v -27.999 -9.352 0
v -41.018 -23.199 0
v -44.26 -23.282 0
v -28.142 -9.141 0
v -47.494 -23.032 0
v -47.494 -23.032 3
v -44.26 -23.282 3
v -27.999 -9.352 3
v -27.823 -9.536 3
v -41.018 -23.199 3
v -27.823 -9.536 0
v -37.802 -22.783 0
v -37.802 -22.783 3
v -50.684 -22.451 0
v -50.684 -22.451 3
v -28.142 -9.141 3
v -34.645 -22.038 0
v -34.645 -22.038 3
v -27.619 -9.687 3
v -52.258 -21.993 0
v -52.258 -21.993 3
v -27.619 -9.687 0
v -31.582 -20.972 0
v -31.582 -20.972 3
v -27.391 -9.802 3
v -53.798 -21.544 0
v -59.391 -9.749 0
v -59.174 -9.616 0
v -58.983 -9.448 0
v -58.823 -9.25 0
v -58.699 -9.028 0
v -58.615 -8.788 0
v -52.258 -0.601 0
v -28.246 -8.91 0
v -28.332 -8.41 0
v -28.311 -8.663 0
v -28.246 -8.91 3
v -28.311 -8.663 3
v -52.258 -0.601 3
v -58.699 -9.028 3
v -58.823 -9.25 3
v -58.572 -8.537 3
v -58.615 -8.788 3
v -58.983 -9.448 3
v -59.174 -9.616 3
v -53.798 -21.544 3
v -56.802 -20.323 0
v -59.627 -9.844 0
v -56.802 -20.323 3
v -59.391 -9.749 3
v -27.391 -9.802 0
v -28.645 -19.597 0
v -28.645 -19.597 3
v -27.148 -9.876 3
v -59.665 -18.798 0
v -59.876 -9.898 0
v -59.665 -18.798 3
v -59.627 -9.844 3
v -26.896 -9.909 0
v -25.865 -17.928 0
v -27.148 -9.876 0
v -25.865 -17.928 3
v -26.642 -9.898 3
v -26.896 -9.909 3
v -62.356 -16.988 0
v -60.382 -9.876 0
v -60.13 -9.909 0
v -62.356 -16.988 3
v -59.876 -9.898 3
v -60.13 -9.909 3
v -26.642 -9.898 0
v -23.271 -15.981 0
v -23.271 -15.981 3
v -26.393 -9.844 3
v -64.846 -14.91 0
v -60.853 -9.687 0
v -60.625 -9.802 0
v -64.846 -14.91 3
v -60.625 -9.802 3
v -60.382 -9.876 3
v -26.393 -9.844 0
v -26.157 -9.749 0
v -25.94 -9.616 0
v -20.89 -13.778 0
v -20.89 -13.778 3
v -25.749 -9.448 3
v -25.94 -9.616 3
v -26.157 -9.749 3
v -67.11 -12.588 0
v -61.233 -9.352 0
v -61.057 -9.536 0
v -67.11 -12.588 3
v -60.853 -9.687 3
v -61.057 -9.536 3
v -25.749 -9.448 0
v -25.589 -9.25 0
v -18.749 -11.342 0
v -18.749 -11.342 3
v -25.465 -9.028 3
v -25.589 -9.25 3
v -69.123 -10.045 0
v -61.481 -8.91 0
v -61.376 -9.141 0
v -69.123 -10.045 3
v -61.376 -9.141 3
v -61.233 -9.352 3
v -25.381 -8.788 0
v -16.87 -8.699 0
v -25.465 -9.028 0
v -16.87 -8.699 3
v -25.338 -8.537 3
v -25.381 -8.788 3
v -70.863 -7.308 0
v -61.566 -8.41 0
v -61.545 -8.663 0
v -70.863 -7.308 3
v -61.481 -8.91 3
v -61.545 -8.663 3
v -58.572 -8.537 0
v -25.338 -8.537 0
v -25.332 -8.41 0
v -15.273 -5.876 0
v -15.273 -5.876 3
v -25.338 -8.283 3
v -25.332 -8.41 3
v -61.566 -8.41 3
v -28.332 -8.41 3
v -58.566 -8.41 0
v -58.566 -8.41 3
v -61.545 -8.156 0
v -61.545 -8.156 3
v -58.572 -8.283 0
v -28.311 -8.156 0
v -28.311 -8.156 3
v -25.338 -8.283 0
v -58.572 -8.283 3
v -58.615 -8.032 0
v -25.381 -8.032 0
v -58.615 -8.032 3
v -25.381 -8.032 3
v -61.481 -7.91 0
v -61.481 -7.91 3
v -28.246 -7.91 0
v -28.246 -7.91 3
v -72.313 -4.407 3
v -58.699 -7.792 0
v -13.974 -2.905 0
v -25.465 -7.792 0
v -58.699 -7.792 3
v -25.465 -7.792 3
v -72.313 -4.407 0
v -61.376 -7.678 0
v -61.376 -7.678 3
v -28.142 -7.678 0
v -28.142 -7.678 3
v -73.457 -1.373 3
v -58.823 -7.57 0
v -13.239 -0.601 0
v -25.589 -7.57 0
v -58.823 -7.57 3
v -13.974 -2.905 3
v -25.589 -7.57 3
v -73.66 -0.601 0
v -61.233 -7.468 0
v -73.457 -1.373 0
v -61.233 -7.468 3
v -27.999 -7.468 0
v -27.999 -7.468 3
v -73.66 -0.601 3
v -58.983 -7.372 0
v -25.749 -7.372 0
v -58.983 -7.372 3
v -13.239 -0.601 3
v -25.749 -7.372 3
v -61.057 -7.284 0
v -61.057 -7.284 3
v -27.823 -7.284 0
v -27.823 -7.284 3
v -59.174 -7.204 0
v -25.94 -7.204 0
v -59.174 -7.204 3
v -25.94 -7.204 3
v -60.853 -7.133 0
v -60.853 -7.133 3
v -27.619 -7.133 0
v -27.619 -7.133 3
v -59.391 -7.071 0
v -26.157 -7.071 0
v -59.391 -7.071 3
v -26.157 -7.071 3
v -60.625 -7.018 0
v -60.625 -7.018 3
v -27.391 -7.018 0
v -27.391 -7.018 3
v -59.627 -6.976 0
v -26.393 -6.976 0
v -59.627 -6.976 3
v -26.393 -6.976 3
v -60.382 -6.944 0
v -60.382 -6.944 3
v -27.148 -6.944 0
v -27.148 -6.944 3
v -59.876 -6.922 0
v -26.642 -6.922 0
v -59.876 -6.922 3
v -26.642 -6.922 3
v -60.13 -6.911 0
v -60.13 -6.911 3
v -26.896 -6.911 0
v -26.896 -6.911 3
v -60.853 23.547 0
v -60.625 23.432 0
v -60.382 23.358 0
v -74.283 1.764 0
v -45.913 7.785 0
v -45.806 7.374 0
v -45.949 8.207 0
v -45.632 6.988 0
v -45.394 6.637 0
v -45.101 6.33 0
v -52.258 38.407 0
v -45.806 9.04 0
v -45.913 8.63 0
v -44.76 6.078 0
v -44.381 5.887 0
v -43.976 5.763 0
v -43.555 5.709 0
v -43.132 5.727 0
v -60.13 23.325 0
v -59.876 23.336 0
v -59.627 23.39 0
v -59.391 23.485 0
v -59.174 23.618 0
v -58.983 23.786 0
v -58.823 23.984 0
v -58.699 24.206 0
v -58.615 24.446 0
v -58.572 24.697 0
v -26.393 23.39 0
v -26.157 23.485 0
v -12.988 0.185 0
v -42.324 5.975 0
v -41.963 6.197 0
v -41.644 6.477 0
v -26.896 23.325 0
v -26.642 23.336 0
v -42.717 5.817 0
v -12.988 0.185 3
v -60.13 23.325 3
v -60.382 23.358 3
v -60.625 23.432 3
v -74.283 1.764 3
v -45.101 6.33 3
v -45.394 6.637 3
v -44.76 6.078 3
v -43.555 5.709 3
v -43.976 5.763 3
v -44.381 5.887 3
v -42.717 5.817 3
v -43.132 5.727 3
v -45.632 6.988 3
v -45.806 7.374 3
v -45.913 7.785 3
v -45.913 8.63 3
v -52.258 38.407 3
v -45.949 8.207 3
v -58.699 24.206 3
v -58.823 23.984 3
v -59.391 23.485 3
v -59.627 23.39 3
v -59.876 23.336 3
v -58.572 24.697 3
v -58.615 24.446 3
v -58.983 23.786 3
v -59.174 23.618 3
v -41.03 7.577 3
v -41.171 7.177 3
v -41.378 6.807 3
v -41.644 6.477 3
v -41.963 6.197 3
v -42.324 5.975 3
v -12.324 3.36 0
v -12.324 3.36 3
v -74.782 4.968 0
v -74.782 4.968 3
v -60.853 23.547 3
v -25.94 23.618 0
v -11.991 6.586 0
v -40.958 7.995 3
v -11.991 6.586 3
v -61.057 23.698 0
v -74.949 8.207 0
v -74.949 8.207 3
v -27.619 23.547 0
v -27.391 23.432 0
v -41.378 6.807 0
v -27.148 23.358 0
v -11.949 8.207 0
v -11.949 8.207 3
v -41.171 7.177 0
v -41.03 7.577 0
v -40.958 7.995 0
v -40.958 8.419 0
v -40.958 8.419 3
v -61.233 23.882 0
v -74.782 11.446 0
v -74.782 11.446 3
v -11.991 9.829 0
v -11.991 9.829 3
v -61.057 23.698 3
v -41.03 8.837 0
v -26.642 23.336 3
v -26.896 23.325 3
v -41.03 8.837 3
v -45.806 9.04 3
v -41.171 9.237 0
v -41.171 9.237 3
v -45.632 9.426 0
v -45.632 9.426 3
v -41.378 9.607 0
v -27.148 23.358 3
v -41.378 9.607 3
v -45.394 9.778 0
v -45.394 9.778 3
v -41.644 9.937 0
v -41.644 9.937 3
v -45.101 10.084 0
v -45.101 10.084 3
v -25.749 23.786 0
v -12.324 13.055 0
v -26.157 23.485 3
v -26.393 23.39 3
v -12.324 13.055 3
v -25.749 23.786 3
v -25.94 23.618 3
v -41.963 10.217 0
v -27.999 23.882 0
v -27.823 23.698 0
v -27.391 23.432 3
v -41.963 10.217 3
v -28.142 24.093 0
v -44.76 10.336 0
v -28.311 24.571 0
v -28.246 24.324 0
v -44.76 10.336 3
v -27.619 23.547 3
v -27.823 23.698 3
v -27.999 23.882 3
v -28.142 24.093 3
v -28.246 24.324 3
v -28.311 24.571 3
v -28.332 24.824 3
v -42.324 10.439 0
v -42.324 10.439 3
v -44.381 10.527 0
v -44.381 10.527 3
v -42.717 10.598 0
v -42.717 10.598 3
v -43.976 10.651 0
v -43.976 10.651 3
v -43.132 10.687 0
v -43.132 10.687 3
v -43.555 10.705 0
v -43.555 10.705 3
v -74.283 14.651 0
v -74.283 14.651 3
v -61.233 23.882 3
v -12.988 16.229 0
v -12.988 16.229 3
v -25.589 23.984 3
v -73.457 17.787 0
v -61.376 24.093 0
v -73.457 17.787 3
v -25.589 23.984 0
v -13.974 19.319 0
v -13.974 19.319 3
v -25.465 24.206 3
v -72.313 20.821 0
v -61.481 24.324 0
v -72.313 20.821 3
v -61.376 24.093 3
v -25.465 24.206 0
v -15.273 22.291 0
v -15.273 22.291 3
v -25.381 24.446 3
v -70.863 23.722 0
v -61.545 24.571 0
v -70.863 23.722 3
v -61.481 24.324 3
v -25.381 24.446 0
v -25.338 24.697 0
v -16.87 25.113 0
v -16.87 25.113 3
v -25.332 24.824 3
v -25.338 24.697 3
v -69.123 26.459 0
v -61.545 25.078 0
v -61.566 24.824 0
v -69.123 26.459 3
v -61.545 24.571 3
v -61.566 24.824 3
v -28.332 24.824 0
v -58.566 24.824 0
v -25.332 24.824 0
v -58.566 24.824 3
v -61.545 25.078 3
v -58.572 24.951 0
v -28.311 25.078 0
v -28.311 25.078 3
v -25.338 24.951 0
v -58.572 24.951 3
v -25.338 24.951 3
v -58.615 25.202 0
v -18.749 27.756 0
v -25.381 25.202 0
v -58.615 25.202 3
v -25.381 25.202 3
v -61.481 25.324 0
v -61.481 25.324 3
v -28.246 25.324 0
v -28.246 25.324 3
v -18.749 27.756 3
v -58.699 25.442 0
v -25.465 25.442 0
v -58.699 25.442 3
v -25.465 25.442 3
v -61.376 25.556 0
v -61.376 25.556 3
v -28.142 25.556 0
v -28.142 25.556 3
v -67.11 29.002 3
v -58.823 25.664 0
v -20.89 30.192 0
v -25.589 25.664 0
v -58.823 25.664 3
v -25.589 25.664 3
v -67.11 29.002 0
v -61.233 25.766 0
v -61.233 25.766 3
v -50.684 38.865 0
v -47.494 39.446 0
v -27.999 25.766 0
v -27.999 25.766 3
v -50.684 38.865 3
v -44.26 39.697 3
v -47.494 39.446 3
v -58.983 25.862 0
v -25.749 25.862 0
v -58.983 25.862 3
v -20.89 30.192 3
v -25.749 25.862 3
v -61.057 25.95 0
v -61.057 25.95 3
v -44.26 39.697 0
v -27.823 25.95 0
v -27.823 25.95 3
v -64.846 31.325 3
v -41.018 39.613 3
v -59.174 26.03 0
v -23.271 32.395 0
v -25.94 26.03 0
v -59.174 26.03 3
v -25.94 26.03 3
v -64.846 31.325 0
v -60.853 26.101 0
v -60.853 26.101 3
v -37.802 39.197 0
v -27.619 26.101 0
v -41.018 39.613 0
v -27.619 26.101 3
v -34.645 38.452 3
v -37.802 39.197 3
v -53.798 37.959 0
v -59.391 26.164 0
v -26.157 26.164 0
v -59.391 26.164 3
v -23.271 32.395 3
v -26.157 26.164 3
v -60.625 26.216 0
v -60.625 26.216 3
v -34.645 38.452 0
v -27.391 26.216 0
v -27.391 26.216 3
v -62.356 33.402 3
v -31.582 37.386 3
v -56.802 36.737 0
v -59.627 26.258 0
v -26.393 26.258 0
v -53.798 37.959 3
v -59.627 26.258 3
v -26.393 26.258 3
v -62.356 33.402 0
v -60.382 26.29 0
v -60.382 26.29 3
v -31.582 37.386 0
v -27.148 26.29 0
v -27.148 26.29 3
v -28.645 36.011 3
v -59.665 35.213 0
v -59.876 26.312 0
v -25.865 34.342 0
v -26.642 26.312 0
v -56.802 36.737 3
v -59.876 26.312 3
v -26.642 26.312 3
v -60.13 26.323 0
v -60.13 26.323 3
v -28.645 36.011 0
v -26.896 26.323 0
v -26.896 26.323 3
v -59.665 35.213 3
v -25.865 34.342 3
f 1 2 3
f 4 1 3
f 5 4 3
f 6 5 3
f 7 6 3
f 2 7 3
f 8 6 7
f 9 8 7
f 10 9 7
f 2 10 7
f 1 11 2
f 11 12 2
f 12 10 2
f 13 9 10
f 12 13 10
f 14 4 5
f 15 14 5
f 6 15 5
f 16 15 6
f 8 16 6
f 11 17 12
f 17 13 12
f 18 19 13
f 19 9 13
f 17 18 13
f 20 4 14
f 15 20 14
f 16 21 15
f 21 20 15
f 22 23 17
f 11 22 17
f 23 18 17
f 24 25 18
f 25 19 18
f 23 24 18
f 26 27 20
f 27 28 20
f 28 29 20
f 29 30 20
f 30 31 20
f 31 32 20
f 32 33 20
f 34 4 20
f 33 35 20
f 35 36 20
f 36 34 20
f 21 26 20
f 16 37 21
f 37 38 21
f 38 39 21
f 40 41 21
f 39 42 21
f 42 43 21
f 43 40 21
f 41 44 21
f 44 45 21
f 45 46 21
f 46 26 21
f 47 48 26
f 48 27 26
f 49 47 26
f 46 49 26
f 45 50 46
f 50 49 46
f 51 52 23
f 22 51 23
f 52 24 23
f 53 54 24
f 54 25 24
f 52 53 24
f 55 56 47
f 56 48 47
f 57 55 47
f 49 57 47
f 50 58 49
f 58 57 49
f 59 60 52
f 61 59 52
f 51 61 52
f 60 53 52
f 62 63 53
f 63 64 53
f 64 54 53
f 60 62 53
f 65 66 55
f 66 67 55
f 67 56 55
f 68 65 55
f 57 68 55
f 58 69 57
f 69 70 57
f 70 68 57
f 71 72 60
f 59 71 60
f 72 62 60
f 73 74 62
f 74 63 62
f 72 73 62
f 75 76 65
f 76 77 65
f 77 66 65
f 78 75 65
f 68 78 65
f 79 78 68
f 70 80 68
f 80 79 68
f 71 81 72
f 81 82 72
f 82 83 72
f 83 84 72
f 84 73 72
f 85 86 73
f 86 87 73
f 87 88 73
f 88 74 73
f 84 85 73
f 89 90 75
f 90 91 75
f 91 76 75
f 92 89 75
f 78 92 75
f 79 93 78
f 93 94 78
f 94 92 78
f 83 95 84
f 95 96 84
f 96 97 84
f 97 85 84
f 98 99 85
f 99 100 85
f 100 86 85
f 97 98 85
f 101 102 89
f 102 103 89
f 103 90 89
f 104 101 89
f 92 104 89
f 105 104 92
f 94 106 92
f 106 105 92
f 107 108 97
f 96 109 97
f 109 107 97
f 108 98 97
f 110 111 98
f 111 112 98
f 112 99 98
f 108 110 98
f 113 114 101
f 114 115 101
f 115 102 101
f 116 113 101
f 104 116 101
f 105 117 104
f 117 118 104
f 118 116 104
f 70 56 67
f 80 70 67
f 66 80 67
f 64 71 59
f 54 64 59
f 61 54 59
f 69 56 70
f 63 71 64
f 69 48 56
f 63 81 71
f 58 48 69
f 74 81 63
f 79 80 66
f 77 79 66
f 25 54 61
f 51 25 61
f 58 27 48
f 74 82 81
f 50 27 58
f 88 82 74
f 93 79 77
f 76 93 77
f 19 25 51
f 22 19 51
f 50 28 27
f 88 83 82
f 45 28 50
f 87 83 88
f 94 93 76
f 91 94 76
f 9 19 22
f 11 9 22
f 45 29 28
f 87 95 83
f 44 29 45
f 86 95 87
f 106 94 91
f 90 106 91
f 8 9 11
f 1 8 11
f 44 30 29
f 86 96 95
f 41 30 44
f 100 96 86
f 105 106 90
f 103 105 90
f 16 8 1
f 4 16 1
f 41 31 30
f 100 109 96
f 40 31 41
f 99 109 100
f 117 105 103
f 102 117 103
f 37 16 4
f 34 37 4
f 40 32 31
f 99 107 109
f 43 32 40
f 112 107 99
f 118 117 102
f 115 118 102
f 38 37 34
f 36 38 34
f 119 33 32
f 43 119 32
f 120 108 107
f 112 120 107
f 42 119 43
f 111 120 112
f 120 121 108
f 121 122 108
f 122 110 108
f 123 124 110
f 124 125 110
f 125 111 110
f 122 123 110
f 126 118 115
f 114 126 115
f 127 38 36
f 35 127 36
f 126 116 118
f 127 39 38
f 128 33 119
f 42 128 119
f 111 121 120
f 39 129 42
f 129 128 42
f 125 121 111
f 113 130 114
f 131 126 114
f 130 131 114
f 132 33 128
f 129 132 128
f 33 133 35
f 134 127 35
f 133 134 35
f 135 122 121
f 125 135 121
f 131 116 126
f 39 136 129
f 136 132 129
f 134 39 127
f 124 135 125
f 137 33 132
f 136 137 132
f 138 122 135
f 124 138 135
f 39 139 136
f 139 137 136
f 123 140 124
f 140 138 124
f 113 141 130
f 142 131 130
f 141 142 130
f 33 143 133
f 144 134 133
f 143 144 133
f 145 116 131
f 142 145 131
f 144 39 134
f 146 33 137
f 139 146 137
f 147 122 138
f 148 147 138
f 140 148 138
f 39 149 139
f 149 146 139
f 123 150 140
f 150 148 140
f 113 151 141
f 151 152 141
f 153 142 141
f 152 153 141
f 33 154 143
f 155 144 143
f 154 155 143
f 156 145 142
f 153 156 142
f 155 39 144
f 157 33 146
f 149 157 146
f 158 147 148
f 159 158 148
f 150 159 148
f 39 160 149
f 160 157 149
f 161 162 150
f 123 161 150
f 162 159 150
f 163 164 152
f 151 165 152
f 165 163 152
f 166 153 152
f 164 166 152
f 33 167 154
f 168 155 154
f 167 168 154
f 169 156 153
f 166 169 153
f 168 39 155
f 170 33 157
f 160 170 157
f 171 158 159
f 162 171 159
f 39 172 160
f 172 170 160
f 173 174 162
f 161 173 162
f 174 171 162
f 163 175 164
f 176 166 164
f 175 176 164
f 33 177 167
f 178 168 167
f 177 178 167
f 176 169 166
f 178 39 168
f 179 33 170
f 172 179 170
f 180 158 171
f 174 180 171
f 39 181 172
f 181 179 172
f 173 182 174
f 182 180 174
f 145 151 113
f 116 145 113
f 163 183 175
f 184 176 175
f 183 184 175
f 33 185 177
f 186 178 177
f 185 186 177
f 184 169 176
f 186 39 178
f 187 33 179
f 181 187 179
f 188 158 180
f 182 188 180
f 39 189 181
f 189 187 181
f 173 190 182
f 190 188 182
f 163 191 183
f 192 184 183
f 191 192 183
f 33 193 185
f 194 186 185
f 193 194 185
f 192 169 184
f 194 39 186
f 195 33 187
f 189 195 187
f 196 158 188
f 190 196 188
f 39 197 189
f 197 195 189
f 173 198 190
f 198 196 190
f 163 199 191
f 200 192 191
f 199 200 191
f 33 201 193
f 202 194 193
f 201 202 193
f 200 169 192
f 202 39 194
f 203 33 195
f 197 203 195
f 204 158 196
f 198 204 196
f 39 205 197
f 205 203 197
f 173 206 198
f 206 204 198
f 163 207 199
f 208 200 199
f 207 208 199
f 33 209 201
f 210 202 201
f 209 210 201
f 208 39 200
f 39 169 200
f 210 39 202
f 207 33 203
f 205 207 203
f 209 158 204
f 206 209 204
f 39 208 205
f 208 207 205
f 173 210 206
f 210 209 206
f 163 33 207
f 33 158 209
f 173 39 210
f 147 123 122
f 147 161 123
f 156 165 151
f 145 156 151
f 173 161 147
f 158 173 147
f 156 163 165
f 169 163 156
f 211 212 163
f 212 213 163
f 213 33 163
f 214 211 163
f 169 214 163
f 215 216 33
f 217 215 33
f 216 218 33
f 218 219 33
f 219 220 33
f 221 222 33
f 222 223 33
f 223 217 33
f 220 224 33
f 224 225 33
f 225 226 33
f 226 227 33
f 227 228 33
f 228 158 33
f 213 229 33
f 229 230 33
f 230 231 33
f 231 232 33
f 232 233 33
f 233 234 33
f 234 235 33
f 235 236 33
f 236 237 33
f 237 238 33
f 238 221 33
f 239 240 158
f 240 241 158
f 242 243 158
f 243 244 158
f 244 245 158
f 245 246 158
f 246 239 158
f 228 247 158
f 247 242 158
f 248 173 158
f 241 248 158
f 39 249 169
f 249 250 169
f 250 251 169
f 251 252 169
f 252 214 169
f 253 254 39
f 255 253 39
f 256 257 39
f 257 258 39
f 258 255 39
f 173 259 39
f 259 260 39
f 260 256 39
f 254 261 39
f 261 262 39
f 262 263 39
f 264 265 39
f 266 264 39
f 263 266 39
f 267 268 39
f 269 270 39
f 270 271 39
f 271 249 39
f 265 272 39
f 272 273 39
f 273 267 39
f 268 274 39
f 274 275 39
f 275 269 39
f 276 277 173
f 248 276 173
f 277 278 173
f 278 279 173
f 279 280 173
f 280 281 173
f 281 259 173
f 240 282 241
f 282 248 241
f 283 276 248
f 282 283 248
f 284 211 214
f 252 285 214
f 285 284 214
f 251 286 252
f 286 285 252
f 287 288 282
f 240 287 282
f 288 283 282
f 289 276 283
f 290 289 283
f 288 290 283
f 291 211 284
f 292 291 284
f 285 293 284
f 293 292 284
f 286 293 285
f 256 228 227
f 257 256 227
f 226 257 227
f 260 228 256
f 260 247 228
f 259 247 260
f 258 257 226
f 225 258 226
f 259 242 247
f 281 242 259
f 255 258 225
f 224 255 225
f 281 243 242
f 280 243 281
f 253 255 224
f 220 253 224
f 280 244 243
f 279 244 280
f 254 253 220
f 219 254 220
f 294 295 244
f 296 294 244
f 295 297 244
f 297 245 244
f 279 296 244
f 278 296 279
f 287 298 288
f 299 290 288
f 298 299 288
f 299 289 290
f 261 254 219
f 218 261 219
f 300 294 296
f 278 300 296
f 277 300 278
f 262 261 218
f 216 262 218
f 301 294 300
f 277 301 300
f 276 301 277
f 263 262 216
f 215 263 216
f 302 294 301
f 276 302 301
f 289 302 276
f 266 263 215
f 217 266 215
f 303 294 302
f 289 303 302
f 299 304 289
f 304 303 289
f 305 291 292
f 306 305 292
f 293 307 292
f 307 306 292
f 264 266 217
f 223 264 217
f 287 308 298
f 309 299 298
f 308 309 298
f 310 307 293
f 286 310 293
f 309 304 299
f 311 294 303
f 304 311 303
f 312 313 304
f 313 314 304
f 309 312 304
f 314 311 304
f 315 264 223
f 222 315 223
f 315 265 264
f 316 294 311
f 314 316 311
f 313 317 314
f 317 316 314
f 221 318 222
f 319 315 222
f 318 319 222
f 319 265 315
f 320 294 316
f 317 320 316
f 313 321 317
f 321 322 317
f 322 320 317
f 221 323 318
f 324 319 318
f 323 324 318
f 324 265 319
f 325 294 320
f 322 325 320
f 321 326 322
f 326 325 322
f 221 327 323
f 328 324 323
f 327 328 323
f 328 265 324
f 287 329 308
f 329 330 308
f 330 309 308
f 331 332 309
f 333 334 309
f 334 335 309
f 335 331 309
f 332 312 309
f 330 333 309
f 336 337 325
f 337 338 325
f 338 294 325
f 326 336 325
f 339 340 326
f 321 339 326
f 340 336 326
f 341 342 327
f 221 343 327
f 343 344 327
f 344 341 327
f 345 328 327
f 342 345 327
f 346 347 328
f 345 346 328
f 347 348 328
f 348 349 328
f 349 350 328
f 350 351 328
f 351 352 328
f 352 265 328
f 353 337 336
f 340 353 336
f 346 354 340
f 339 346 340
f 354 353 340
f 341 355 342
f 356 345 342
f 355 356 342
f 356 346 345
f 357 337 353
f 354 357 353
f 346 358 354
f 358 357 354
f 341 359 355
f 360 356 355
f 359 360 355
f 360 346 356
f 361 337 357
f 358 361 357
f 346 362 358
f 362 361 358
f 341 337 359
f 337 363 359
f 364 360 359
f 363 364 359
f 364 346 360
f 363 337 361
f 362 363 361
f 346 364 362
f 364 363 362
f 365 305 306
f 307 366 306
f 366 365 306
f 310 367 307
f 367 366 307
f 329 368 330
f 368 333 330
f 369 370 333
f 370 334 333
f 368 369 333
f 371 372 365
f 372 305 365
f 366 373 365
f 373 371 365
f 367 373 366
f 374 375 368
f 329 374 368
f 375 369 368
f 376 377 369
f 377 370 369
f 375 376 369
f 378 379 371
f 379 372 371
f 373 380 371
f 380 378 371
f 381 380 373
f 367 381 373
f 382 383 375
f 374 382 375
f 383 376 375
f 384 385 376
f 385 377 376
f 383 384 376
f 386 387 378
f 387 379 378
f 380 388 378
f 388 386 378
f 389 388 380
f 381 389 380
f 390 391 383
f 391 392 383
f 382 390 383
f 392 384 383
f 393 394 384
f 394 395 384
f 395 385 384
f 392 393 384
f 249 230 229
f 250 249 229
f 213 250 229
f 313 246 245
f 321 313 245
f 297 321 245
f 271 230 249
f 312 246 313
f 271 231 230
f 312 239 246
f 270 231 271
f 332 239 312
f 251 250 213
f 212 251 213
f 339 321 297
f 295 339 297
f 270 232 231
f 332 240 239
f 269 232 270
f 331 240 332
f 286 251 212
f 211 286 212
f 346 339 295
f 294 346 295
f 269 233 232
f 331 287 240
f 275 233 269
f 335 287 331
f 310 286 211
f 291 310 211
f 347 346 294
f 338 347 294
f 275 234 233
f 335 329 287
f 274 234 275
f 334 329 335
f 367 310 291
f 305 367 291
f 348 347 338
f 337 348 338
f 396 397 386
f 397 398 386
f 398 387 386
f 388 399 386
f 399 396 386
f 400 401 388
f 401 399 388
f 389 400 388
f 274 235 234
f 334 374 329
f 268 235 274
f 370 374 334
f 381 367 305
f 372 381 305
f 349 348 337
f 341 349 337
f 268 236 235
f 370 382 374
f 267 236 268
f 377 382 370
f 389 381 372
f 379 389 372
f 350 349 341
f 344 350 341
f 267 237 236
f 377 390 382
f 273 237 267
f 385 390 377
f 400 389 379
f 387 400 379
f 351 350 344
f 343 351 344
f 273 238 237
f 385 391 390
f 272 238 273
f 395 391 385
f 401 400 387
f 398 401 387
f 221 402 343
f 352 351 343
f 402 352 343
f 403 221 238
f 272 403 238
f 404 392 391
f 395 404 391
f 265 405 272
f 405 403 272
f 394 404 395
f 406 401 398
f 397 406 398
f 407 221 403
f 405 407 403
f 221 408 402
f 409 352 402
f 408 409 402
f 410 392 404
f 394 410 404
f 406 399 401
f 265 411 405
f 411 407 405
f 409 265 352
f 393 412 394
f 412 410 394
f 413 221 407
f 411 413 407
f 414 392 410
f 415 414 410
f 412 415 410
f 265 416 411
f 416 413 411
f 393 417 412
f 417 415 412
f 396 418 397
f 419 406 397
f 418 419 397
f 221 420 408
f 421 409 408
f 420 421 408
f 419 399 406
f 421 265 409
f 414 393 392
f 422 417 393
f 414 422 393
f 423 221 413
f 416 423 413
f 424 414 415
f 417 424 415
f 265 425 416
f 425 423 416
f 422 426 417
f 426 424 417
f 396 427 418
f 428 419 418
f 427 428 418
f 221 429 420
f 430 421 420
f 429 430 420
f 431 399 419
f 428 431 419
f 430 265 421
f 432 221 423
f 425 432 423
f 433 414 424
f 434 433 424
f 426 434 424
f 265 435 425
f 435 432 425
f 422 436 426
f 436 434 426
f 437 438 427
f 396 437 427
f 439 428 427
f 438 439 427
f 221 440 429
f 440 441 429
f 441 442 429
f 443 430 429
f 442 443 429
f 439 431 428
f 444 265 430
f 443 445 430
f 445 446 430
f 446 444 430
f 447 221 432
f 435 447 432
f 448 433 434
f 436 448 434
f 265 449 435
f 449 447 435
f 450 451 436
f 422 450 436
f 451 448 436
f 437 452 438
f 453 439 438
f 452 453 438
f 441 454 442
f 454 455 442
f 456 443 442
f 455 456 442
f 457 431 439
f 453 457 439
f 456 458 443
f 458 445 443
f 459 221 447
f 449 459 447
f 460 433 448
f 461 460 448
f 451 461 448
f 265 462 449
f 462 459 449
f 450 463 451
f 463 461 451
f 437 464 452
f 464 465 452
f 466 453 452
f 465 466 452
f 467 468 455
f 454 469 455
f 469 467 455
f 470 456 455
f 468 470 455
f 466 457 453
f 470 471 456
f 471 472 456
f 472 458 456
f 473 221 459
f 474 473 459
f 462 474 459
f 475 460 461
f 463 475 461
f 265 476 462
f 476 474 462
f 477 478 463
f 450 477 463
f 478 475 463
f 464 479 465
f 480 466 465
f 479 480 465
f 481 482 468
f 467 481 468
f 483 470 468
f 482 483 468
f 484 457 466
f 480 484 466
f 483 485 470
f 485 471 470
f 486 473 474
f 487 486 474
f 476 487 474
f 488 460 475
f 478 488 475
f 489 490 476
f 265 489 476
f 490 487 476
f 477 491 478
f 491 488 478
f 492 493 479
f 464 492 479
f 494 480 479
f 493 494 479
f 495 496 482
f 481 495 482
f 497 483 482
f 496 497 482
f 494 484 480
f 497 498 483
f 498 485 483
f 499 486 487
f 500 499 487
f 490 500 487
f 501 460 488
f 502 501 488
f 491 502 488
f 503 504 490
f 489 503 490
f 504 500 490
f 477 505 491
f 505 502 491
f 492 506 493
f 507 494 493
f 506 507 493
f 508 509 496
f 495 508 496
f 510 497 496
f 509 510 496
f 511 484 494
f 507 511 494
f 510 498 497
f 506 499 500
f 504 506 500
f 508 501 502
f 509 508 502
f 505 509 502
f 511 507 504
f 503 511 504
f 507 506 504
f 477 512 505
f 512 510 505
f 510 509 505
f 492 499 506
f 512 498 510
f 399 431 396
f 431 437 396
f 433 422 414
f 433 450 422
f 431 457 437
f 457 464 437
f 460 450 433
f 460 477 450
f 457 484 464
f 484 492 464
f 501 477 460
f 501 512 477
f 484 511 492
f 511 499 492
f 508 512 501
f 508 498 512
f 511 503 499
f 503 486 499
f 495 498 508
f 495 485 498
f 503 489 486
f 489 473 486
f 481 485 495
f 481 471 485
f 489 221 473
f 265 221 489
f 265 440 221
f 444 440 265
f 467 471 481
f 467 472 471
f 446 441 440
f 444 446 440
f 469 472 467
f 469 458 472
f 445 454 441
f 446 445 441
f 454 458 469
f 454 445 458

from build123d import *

# Parameters (mm, degrees)
CROQUIS1_R              = 31.5
CROQUIS1_R_2            = 1.5
SALIENTE_EXTRUIR1_DEPTH = 3
CROQUIS4_R              = 2.5
CORTAR_EXTRUIR3_DEPTH   = 3


with BuildPart() as part:
    # Croquis1 → Saliente-Extruir1 (new body)
    with BuildSketch(Plane.XY):
        with Locations((-43.449193048, 8.207110309)):
            Circle(CROQUIS1_R)
        with Locations((-60.066202406, 24.824119667)):
            Circle(CROQUIS1_R_2, mode=Mode.SUBTRACT)
        with Locations((-26.83218369, 24.824119667)):
            Circle(CROQUIS1_R_2, mode=Mode.SUBTRACT)
        with Locations((-26.83218369, -8.409899049)):
            Circle(CROQUIS1_R_2, mode=Mode.SUBTRACT)
        with Locations((-60.066202406, -8.409899049)):
            Circle(CROQUIS1_R_2, mode=Mode.SUBTRACT)
    extrude(amount=SALIENTE_EXTRUIR1_DEPTH)

    # Croquis4 → Cortar-Extruir3 (cut)
    with BuildSketch(Plane(origin=(0, 0, 0), x_dir=(-1, 0, 0), z_dir=(0, 0, -1))):
        with Locations((43.449193048, 8.207110309)):
            Circle(CROQUIS4_R)
    extrude(amount=-CORTAR_EXTRUIR3_DEPTH, mode=Mode.SUBTRACT)


solid = part.part
